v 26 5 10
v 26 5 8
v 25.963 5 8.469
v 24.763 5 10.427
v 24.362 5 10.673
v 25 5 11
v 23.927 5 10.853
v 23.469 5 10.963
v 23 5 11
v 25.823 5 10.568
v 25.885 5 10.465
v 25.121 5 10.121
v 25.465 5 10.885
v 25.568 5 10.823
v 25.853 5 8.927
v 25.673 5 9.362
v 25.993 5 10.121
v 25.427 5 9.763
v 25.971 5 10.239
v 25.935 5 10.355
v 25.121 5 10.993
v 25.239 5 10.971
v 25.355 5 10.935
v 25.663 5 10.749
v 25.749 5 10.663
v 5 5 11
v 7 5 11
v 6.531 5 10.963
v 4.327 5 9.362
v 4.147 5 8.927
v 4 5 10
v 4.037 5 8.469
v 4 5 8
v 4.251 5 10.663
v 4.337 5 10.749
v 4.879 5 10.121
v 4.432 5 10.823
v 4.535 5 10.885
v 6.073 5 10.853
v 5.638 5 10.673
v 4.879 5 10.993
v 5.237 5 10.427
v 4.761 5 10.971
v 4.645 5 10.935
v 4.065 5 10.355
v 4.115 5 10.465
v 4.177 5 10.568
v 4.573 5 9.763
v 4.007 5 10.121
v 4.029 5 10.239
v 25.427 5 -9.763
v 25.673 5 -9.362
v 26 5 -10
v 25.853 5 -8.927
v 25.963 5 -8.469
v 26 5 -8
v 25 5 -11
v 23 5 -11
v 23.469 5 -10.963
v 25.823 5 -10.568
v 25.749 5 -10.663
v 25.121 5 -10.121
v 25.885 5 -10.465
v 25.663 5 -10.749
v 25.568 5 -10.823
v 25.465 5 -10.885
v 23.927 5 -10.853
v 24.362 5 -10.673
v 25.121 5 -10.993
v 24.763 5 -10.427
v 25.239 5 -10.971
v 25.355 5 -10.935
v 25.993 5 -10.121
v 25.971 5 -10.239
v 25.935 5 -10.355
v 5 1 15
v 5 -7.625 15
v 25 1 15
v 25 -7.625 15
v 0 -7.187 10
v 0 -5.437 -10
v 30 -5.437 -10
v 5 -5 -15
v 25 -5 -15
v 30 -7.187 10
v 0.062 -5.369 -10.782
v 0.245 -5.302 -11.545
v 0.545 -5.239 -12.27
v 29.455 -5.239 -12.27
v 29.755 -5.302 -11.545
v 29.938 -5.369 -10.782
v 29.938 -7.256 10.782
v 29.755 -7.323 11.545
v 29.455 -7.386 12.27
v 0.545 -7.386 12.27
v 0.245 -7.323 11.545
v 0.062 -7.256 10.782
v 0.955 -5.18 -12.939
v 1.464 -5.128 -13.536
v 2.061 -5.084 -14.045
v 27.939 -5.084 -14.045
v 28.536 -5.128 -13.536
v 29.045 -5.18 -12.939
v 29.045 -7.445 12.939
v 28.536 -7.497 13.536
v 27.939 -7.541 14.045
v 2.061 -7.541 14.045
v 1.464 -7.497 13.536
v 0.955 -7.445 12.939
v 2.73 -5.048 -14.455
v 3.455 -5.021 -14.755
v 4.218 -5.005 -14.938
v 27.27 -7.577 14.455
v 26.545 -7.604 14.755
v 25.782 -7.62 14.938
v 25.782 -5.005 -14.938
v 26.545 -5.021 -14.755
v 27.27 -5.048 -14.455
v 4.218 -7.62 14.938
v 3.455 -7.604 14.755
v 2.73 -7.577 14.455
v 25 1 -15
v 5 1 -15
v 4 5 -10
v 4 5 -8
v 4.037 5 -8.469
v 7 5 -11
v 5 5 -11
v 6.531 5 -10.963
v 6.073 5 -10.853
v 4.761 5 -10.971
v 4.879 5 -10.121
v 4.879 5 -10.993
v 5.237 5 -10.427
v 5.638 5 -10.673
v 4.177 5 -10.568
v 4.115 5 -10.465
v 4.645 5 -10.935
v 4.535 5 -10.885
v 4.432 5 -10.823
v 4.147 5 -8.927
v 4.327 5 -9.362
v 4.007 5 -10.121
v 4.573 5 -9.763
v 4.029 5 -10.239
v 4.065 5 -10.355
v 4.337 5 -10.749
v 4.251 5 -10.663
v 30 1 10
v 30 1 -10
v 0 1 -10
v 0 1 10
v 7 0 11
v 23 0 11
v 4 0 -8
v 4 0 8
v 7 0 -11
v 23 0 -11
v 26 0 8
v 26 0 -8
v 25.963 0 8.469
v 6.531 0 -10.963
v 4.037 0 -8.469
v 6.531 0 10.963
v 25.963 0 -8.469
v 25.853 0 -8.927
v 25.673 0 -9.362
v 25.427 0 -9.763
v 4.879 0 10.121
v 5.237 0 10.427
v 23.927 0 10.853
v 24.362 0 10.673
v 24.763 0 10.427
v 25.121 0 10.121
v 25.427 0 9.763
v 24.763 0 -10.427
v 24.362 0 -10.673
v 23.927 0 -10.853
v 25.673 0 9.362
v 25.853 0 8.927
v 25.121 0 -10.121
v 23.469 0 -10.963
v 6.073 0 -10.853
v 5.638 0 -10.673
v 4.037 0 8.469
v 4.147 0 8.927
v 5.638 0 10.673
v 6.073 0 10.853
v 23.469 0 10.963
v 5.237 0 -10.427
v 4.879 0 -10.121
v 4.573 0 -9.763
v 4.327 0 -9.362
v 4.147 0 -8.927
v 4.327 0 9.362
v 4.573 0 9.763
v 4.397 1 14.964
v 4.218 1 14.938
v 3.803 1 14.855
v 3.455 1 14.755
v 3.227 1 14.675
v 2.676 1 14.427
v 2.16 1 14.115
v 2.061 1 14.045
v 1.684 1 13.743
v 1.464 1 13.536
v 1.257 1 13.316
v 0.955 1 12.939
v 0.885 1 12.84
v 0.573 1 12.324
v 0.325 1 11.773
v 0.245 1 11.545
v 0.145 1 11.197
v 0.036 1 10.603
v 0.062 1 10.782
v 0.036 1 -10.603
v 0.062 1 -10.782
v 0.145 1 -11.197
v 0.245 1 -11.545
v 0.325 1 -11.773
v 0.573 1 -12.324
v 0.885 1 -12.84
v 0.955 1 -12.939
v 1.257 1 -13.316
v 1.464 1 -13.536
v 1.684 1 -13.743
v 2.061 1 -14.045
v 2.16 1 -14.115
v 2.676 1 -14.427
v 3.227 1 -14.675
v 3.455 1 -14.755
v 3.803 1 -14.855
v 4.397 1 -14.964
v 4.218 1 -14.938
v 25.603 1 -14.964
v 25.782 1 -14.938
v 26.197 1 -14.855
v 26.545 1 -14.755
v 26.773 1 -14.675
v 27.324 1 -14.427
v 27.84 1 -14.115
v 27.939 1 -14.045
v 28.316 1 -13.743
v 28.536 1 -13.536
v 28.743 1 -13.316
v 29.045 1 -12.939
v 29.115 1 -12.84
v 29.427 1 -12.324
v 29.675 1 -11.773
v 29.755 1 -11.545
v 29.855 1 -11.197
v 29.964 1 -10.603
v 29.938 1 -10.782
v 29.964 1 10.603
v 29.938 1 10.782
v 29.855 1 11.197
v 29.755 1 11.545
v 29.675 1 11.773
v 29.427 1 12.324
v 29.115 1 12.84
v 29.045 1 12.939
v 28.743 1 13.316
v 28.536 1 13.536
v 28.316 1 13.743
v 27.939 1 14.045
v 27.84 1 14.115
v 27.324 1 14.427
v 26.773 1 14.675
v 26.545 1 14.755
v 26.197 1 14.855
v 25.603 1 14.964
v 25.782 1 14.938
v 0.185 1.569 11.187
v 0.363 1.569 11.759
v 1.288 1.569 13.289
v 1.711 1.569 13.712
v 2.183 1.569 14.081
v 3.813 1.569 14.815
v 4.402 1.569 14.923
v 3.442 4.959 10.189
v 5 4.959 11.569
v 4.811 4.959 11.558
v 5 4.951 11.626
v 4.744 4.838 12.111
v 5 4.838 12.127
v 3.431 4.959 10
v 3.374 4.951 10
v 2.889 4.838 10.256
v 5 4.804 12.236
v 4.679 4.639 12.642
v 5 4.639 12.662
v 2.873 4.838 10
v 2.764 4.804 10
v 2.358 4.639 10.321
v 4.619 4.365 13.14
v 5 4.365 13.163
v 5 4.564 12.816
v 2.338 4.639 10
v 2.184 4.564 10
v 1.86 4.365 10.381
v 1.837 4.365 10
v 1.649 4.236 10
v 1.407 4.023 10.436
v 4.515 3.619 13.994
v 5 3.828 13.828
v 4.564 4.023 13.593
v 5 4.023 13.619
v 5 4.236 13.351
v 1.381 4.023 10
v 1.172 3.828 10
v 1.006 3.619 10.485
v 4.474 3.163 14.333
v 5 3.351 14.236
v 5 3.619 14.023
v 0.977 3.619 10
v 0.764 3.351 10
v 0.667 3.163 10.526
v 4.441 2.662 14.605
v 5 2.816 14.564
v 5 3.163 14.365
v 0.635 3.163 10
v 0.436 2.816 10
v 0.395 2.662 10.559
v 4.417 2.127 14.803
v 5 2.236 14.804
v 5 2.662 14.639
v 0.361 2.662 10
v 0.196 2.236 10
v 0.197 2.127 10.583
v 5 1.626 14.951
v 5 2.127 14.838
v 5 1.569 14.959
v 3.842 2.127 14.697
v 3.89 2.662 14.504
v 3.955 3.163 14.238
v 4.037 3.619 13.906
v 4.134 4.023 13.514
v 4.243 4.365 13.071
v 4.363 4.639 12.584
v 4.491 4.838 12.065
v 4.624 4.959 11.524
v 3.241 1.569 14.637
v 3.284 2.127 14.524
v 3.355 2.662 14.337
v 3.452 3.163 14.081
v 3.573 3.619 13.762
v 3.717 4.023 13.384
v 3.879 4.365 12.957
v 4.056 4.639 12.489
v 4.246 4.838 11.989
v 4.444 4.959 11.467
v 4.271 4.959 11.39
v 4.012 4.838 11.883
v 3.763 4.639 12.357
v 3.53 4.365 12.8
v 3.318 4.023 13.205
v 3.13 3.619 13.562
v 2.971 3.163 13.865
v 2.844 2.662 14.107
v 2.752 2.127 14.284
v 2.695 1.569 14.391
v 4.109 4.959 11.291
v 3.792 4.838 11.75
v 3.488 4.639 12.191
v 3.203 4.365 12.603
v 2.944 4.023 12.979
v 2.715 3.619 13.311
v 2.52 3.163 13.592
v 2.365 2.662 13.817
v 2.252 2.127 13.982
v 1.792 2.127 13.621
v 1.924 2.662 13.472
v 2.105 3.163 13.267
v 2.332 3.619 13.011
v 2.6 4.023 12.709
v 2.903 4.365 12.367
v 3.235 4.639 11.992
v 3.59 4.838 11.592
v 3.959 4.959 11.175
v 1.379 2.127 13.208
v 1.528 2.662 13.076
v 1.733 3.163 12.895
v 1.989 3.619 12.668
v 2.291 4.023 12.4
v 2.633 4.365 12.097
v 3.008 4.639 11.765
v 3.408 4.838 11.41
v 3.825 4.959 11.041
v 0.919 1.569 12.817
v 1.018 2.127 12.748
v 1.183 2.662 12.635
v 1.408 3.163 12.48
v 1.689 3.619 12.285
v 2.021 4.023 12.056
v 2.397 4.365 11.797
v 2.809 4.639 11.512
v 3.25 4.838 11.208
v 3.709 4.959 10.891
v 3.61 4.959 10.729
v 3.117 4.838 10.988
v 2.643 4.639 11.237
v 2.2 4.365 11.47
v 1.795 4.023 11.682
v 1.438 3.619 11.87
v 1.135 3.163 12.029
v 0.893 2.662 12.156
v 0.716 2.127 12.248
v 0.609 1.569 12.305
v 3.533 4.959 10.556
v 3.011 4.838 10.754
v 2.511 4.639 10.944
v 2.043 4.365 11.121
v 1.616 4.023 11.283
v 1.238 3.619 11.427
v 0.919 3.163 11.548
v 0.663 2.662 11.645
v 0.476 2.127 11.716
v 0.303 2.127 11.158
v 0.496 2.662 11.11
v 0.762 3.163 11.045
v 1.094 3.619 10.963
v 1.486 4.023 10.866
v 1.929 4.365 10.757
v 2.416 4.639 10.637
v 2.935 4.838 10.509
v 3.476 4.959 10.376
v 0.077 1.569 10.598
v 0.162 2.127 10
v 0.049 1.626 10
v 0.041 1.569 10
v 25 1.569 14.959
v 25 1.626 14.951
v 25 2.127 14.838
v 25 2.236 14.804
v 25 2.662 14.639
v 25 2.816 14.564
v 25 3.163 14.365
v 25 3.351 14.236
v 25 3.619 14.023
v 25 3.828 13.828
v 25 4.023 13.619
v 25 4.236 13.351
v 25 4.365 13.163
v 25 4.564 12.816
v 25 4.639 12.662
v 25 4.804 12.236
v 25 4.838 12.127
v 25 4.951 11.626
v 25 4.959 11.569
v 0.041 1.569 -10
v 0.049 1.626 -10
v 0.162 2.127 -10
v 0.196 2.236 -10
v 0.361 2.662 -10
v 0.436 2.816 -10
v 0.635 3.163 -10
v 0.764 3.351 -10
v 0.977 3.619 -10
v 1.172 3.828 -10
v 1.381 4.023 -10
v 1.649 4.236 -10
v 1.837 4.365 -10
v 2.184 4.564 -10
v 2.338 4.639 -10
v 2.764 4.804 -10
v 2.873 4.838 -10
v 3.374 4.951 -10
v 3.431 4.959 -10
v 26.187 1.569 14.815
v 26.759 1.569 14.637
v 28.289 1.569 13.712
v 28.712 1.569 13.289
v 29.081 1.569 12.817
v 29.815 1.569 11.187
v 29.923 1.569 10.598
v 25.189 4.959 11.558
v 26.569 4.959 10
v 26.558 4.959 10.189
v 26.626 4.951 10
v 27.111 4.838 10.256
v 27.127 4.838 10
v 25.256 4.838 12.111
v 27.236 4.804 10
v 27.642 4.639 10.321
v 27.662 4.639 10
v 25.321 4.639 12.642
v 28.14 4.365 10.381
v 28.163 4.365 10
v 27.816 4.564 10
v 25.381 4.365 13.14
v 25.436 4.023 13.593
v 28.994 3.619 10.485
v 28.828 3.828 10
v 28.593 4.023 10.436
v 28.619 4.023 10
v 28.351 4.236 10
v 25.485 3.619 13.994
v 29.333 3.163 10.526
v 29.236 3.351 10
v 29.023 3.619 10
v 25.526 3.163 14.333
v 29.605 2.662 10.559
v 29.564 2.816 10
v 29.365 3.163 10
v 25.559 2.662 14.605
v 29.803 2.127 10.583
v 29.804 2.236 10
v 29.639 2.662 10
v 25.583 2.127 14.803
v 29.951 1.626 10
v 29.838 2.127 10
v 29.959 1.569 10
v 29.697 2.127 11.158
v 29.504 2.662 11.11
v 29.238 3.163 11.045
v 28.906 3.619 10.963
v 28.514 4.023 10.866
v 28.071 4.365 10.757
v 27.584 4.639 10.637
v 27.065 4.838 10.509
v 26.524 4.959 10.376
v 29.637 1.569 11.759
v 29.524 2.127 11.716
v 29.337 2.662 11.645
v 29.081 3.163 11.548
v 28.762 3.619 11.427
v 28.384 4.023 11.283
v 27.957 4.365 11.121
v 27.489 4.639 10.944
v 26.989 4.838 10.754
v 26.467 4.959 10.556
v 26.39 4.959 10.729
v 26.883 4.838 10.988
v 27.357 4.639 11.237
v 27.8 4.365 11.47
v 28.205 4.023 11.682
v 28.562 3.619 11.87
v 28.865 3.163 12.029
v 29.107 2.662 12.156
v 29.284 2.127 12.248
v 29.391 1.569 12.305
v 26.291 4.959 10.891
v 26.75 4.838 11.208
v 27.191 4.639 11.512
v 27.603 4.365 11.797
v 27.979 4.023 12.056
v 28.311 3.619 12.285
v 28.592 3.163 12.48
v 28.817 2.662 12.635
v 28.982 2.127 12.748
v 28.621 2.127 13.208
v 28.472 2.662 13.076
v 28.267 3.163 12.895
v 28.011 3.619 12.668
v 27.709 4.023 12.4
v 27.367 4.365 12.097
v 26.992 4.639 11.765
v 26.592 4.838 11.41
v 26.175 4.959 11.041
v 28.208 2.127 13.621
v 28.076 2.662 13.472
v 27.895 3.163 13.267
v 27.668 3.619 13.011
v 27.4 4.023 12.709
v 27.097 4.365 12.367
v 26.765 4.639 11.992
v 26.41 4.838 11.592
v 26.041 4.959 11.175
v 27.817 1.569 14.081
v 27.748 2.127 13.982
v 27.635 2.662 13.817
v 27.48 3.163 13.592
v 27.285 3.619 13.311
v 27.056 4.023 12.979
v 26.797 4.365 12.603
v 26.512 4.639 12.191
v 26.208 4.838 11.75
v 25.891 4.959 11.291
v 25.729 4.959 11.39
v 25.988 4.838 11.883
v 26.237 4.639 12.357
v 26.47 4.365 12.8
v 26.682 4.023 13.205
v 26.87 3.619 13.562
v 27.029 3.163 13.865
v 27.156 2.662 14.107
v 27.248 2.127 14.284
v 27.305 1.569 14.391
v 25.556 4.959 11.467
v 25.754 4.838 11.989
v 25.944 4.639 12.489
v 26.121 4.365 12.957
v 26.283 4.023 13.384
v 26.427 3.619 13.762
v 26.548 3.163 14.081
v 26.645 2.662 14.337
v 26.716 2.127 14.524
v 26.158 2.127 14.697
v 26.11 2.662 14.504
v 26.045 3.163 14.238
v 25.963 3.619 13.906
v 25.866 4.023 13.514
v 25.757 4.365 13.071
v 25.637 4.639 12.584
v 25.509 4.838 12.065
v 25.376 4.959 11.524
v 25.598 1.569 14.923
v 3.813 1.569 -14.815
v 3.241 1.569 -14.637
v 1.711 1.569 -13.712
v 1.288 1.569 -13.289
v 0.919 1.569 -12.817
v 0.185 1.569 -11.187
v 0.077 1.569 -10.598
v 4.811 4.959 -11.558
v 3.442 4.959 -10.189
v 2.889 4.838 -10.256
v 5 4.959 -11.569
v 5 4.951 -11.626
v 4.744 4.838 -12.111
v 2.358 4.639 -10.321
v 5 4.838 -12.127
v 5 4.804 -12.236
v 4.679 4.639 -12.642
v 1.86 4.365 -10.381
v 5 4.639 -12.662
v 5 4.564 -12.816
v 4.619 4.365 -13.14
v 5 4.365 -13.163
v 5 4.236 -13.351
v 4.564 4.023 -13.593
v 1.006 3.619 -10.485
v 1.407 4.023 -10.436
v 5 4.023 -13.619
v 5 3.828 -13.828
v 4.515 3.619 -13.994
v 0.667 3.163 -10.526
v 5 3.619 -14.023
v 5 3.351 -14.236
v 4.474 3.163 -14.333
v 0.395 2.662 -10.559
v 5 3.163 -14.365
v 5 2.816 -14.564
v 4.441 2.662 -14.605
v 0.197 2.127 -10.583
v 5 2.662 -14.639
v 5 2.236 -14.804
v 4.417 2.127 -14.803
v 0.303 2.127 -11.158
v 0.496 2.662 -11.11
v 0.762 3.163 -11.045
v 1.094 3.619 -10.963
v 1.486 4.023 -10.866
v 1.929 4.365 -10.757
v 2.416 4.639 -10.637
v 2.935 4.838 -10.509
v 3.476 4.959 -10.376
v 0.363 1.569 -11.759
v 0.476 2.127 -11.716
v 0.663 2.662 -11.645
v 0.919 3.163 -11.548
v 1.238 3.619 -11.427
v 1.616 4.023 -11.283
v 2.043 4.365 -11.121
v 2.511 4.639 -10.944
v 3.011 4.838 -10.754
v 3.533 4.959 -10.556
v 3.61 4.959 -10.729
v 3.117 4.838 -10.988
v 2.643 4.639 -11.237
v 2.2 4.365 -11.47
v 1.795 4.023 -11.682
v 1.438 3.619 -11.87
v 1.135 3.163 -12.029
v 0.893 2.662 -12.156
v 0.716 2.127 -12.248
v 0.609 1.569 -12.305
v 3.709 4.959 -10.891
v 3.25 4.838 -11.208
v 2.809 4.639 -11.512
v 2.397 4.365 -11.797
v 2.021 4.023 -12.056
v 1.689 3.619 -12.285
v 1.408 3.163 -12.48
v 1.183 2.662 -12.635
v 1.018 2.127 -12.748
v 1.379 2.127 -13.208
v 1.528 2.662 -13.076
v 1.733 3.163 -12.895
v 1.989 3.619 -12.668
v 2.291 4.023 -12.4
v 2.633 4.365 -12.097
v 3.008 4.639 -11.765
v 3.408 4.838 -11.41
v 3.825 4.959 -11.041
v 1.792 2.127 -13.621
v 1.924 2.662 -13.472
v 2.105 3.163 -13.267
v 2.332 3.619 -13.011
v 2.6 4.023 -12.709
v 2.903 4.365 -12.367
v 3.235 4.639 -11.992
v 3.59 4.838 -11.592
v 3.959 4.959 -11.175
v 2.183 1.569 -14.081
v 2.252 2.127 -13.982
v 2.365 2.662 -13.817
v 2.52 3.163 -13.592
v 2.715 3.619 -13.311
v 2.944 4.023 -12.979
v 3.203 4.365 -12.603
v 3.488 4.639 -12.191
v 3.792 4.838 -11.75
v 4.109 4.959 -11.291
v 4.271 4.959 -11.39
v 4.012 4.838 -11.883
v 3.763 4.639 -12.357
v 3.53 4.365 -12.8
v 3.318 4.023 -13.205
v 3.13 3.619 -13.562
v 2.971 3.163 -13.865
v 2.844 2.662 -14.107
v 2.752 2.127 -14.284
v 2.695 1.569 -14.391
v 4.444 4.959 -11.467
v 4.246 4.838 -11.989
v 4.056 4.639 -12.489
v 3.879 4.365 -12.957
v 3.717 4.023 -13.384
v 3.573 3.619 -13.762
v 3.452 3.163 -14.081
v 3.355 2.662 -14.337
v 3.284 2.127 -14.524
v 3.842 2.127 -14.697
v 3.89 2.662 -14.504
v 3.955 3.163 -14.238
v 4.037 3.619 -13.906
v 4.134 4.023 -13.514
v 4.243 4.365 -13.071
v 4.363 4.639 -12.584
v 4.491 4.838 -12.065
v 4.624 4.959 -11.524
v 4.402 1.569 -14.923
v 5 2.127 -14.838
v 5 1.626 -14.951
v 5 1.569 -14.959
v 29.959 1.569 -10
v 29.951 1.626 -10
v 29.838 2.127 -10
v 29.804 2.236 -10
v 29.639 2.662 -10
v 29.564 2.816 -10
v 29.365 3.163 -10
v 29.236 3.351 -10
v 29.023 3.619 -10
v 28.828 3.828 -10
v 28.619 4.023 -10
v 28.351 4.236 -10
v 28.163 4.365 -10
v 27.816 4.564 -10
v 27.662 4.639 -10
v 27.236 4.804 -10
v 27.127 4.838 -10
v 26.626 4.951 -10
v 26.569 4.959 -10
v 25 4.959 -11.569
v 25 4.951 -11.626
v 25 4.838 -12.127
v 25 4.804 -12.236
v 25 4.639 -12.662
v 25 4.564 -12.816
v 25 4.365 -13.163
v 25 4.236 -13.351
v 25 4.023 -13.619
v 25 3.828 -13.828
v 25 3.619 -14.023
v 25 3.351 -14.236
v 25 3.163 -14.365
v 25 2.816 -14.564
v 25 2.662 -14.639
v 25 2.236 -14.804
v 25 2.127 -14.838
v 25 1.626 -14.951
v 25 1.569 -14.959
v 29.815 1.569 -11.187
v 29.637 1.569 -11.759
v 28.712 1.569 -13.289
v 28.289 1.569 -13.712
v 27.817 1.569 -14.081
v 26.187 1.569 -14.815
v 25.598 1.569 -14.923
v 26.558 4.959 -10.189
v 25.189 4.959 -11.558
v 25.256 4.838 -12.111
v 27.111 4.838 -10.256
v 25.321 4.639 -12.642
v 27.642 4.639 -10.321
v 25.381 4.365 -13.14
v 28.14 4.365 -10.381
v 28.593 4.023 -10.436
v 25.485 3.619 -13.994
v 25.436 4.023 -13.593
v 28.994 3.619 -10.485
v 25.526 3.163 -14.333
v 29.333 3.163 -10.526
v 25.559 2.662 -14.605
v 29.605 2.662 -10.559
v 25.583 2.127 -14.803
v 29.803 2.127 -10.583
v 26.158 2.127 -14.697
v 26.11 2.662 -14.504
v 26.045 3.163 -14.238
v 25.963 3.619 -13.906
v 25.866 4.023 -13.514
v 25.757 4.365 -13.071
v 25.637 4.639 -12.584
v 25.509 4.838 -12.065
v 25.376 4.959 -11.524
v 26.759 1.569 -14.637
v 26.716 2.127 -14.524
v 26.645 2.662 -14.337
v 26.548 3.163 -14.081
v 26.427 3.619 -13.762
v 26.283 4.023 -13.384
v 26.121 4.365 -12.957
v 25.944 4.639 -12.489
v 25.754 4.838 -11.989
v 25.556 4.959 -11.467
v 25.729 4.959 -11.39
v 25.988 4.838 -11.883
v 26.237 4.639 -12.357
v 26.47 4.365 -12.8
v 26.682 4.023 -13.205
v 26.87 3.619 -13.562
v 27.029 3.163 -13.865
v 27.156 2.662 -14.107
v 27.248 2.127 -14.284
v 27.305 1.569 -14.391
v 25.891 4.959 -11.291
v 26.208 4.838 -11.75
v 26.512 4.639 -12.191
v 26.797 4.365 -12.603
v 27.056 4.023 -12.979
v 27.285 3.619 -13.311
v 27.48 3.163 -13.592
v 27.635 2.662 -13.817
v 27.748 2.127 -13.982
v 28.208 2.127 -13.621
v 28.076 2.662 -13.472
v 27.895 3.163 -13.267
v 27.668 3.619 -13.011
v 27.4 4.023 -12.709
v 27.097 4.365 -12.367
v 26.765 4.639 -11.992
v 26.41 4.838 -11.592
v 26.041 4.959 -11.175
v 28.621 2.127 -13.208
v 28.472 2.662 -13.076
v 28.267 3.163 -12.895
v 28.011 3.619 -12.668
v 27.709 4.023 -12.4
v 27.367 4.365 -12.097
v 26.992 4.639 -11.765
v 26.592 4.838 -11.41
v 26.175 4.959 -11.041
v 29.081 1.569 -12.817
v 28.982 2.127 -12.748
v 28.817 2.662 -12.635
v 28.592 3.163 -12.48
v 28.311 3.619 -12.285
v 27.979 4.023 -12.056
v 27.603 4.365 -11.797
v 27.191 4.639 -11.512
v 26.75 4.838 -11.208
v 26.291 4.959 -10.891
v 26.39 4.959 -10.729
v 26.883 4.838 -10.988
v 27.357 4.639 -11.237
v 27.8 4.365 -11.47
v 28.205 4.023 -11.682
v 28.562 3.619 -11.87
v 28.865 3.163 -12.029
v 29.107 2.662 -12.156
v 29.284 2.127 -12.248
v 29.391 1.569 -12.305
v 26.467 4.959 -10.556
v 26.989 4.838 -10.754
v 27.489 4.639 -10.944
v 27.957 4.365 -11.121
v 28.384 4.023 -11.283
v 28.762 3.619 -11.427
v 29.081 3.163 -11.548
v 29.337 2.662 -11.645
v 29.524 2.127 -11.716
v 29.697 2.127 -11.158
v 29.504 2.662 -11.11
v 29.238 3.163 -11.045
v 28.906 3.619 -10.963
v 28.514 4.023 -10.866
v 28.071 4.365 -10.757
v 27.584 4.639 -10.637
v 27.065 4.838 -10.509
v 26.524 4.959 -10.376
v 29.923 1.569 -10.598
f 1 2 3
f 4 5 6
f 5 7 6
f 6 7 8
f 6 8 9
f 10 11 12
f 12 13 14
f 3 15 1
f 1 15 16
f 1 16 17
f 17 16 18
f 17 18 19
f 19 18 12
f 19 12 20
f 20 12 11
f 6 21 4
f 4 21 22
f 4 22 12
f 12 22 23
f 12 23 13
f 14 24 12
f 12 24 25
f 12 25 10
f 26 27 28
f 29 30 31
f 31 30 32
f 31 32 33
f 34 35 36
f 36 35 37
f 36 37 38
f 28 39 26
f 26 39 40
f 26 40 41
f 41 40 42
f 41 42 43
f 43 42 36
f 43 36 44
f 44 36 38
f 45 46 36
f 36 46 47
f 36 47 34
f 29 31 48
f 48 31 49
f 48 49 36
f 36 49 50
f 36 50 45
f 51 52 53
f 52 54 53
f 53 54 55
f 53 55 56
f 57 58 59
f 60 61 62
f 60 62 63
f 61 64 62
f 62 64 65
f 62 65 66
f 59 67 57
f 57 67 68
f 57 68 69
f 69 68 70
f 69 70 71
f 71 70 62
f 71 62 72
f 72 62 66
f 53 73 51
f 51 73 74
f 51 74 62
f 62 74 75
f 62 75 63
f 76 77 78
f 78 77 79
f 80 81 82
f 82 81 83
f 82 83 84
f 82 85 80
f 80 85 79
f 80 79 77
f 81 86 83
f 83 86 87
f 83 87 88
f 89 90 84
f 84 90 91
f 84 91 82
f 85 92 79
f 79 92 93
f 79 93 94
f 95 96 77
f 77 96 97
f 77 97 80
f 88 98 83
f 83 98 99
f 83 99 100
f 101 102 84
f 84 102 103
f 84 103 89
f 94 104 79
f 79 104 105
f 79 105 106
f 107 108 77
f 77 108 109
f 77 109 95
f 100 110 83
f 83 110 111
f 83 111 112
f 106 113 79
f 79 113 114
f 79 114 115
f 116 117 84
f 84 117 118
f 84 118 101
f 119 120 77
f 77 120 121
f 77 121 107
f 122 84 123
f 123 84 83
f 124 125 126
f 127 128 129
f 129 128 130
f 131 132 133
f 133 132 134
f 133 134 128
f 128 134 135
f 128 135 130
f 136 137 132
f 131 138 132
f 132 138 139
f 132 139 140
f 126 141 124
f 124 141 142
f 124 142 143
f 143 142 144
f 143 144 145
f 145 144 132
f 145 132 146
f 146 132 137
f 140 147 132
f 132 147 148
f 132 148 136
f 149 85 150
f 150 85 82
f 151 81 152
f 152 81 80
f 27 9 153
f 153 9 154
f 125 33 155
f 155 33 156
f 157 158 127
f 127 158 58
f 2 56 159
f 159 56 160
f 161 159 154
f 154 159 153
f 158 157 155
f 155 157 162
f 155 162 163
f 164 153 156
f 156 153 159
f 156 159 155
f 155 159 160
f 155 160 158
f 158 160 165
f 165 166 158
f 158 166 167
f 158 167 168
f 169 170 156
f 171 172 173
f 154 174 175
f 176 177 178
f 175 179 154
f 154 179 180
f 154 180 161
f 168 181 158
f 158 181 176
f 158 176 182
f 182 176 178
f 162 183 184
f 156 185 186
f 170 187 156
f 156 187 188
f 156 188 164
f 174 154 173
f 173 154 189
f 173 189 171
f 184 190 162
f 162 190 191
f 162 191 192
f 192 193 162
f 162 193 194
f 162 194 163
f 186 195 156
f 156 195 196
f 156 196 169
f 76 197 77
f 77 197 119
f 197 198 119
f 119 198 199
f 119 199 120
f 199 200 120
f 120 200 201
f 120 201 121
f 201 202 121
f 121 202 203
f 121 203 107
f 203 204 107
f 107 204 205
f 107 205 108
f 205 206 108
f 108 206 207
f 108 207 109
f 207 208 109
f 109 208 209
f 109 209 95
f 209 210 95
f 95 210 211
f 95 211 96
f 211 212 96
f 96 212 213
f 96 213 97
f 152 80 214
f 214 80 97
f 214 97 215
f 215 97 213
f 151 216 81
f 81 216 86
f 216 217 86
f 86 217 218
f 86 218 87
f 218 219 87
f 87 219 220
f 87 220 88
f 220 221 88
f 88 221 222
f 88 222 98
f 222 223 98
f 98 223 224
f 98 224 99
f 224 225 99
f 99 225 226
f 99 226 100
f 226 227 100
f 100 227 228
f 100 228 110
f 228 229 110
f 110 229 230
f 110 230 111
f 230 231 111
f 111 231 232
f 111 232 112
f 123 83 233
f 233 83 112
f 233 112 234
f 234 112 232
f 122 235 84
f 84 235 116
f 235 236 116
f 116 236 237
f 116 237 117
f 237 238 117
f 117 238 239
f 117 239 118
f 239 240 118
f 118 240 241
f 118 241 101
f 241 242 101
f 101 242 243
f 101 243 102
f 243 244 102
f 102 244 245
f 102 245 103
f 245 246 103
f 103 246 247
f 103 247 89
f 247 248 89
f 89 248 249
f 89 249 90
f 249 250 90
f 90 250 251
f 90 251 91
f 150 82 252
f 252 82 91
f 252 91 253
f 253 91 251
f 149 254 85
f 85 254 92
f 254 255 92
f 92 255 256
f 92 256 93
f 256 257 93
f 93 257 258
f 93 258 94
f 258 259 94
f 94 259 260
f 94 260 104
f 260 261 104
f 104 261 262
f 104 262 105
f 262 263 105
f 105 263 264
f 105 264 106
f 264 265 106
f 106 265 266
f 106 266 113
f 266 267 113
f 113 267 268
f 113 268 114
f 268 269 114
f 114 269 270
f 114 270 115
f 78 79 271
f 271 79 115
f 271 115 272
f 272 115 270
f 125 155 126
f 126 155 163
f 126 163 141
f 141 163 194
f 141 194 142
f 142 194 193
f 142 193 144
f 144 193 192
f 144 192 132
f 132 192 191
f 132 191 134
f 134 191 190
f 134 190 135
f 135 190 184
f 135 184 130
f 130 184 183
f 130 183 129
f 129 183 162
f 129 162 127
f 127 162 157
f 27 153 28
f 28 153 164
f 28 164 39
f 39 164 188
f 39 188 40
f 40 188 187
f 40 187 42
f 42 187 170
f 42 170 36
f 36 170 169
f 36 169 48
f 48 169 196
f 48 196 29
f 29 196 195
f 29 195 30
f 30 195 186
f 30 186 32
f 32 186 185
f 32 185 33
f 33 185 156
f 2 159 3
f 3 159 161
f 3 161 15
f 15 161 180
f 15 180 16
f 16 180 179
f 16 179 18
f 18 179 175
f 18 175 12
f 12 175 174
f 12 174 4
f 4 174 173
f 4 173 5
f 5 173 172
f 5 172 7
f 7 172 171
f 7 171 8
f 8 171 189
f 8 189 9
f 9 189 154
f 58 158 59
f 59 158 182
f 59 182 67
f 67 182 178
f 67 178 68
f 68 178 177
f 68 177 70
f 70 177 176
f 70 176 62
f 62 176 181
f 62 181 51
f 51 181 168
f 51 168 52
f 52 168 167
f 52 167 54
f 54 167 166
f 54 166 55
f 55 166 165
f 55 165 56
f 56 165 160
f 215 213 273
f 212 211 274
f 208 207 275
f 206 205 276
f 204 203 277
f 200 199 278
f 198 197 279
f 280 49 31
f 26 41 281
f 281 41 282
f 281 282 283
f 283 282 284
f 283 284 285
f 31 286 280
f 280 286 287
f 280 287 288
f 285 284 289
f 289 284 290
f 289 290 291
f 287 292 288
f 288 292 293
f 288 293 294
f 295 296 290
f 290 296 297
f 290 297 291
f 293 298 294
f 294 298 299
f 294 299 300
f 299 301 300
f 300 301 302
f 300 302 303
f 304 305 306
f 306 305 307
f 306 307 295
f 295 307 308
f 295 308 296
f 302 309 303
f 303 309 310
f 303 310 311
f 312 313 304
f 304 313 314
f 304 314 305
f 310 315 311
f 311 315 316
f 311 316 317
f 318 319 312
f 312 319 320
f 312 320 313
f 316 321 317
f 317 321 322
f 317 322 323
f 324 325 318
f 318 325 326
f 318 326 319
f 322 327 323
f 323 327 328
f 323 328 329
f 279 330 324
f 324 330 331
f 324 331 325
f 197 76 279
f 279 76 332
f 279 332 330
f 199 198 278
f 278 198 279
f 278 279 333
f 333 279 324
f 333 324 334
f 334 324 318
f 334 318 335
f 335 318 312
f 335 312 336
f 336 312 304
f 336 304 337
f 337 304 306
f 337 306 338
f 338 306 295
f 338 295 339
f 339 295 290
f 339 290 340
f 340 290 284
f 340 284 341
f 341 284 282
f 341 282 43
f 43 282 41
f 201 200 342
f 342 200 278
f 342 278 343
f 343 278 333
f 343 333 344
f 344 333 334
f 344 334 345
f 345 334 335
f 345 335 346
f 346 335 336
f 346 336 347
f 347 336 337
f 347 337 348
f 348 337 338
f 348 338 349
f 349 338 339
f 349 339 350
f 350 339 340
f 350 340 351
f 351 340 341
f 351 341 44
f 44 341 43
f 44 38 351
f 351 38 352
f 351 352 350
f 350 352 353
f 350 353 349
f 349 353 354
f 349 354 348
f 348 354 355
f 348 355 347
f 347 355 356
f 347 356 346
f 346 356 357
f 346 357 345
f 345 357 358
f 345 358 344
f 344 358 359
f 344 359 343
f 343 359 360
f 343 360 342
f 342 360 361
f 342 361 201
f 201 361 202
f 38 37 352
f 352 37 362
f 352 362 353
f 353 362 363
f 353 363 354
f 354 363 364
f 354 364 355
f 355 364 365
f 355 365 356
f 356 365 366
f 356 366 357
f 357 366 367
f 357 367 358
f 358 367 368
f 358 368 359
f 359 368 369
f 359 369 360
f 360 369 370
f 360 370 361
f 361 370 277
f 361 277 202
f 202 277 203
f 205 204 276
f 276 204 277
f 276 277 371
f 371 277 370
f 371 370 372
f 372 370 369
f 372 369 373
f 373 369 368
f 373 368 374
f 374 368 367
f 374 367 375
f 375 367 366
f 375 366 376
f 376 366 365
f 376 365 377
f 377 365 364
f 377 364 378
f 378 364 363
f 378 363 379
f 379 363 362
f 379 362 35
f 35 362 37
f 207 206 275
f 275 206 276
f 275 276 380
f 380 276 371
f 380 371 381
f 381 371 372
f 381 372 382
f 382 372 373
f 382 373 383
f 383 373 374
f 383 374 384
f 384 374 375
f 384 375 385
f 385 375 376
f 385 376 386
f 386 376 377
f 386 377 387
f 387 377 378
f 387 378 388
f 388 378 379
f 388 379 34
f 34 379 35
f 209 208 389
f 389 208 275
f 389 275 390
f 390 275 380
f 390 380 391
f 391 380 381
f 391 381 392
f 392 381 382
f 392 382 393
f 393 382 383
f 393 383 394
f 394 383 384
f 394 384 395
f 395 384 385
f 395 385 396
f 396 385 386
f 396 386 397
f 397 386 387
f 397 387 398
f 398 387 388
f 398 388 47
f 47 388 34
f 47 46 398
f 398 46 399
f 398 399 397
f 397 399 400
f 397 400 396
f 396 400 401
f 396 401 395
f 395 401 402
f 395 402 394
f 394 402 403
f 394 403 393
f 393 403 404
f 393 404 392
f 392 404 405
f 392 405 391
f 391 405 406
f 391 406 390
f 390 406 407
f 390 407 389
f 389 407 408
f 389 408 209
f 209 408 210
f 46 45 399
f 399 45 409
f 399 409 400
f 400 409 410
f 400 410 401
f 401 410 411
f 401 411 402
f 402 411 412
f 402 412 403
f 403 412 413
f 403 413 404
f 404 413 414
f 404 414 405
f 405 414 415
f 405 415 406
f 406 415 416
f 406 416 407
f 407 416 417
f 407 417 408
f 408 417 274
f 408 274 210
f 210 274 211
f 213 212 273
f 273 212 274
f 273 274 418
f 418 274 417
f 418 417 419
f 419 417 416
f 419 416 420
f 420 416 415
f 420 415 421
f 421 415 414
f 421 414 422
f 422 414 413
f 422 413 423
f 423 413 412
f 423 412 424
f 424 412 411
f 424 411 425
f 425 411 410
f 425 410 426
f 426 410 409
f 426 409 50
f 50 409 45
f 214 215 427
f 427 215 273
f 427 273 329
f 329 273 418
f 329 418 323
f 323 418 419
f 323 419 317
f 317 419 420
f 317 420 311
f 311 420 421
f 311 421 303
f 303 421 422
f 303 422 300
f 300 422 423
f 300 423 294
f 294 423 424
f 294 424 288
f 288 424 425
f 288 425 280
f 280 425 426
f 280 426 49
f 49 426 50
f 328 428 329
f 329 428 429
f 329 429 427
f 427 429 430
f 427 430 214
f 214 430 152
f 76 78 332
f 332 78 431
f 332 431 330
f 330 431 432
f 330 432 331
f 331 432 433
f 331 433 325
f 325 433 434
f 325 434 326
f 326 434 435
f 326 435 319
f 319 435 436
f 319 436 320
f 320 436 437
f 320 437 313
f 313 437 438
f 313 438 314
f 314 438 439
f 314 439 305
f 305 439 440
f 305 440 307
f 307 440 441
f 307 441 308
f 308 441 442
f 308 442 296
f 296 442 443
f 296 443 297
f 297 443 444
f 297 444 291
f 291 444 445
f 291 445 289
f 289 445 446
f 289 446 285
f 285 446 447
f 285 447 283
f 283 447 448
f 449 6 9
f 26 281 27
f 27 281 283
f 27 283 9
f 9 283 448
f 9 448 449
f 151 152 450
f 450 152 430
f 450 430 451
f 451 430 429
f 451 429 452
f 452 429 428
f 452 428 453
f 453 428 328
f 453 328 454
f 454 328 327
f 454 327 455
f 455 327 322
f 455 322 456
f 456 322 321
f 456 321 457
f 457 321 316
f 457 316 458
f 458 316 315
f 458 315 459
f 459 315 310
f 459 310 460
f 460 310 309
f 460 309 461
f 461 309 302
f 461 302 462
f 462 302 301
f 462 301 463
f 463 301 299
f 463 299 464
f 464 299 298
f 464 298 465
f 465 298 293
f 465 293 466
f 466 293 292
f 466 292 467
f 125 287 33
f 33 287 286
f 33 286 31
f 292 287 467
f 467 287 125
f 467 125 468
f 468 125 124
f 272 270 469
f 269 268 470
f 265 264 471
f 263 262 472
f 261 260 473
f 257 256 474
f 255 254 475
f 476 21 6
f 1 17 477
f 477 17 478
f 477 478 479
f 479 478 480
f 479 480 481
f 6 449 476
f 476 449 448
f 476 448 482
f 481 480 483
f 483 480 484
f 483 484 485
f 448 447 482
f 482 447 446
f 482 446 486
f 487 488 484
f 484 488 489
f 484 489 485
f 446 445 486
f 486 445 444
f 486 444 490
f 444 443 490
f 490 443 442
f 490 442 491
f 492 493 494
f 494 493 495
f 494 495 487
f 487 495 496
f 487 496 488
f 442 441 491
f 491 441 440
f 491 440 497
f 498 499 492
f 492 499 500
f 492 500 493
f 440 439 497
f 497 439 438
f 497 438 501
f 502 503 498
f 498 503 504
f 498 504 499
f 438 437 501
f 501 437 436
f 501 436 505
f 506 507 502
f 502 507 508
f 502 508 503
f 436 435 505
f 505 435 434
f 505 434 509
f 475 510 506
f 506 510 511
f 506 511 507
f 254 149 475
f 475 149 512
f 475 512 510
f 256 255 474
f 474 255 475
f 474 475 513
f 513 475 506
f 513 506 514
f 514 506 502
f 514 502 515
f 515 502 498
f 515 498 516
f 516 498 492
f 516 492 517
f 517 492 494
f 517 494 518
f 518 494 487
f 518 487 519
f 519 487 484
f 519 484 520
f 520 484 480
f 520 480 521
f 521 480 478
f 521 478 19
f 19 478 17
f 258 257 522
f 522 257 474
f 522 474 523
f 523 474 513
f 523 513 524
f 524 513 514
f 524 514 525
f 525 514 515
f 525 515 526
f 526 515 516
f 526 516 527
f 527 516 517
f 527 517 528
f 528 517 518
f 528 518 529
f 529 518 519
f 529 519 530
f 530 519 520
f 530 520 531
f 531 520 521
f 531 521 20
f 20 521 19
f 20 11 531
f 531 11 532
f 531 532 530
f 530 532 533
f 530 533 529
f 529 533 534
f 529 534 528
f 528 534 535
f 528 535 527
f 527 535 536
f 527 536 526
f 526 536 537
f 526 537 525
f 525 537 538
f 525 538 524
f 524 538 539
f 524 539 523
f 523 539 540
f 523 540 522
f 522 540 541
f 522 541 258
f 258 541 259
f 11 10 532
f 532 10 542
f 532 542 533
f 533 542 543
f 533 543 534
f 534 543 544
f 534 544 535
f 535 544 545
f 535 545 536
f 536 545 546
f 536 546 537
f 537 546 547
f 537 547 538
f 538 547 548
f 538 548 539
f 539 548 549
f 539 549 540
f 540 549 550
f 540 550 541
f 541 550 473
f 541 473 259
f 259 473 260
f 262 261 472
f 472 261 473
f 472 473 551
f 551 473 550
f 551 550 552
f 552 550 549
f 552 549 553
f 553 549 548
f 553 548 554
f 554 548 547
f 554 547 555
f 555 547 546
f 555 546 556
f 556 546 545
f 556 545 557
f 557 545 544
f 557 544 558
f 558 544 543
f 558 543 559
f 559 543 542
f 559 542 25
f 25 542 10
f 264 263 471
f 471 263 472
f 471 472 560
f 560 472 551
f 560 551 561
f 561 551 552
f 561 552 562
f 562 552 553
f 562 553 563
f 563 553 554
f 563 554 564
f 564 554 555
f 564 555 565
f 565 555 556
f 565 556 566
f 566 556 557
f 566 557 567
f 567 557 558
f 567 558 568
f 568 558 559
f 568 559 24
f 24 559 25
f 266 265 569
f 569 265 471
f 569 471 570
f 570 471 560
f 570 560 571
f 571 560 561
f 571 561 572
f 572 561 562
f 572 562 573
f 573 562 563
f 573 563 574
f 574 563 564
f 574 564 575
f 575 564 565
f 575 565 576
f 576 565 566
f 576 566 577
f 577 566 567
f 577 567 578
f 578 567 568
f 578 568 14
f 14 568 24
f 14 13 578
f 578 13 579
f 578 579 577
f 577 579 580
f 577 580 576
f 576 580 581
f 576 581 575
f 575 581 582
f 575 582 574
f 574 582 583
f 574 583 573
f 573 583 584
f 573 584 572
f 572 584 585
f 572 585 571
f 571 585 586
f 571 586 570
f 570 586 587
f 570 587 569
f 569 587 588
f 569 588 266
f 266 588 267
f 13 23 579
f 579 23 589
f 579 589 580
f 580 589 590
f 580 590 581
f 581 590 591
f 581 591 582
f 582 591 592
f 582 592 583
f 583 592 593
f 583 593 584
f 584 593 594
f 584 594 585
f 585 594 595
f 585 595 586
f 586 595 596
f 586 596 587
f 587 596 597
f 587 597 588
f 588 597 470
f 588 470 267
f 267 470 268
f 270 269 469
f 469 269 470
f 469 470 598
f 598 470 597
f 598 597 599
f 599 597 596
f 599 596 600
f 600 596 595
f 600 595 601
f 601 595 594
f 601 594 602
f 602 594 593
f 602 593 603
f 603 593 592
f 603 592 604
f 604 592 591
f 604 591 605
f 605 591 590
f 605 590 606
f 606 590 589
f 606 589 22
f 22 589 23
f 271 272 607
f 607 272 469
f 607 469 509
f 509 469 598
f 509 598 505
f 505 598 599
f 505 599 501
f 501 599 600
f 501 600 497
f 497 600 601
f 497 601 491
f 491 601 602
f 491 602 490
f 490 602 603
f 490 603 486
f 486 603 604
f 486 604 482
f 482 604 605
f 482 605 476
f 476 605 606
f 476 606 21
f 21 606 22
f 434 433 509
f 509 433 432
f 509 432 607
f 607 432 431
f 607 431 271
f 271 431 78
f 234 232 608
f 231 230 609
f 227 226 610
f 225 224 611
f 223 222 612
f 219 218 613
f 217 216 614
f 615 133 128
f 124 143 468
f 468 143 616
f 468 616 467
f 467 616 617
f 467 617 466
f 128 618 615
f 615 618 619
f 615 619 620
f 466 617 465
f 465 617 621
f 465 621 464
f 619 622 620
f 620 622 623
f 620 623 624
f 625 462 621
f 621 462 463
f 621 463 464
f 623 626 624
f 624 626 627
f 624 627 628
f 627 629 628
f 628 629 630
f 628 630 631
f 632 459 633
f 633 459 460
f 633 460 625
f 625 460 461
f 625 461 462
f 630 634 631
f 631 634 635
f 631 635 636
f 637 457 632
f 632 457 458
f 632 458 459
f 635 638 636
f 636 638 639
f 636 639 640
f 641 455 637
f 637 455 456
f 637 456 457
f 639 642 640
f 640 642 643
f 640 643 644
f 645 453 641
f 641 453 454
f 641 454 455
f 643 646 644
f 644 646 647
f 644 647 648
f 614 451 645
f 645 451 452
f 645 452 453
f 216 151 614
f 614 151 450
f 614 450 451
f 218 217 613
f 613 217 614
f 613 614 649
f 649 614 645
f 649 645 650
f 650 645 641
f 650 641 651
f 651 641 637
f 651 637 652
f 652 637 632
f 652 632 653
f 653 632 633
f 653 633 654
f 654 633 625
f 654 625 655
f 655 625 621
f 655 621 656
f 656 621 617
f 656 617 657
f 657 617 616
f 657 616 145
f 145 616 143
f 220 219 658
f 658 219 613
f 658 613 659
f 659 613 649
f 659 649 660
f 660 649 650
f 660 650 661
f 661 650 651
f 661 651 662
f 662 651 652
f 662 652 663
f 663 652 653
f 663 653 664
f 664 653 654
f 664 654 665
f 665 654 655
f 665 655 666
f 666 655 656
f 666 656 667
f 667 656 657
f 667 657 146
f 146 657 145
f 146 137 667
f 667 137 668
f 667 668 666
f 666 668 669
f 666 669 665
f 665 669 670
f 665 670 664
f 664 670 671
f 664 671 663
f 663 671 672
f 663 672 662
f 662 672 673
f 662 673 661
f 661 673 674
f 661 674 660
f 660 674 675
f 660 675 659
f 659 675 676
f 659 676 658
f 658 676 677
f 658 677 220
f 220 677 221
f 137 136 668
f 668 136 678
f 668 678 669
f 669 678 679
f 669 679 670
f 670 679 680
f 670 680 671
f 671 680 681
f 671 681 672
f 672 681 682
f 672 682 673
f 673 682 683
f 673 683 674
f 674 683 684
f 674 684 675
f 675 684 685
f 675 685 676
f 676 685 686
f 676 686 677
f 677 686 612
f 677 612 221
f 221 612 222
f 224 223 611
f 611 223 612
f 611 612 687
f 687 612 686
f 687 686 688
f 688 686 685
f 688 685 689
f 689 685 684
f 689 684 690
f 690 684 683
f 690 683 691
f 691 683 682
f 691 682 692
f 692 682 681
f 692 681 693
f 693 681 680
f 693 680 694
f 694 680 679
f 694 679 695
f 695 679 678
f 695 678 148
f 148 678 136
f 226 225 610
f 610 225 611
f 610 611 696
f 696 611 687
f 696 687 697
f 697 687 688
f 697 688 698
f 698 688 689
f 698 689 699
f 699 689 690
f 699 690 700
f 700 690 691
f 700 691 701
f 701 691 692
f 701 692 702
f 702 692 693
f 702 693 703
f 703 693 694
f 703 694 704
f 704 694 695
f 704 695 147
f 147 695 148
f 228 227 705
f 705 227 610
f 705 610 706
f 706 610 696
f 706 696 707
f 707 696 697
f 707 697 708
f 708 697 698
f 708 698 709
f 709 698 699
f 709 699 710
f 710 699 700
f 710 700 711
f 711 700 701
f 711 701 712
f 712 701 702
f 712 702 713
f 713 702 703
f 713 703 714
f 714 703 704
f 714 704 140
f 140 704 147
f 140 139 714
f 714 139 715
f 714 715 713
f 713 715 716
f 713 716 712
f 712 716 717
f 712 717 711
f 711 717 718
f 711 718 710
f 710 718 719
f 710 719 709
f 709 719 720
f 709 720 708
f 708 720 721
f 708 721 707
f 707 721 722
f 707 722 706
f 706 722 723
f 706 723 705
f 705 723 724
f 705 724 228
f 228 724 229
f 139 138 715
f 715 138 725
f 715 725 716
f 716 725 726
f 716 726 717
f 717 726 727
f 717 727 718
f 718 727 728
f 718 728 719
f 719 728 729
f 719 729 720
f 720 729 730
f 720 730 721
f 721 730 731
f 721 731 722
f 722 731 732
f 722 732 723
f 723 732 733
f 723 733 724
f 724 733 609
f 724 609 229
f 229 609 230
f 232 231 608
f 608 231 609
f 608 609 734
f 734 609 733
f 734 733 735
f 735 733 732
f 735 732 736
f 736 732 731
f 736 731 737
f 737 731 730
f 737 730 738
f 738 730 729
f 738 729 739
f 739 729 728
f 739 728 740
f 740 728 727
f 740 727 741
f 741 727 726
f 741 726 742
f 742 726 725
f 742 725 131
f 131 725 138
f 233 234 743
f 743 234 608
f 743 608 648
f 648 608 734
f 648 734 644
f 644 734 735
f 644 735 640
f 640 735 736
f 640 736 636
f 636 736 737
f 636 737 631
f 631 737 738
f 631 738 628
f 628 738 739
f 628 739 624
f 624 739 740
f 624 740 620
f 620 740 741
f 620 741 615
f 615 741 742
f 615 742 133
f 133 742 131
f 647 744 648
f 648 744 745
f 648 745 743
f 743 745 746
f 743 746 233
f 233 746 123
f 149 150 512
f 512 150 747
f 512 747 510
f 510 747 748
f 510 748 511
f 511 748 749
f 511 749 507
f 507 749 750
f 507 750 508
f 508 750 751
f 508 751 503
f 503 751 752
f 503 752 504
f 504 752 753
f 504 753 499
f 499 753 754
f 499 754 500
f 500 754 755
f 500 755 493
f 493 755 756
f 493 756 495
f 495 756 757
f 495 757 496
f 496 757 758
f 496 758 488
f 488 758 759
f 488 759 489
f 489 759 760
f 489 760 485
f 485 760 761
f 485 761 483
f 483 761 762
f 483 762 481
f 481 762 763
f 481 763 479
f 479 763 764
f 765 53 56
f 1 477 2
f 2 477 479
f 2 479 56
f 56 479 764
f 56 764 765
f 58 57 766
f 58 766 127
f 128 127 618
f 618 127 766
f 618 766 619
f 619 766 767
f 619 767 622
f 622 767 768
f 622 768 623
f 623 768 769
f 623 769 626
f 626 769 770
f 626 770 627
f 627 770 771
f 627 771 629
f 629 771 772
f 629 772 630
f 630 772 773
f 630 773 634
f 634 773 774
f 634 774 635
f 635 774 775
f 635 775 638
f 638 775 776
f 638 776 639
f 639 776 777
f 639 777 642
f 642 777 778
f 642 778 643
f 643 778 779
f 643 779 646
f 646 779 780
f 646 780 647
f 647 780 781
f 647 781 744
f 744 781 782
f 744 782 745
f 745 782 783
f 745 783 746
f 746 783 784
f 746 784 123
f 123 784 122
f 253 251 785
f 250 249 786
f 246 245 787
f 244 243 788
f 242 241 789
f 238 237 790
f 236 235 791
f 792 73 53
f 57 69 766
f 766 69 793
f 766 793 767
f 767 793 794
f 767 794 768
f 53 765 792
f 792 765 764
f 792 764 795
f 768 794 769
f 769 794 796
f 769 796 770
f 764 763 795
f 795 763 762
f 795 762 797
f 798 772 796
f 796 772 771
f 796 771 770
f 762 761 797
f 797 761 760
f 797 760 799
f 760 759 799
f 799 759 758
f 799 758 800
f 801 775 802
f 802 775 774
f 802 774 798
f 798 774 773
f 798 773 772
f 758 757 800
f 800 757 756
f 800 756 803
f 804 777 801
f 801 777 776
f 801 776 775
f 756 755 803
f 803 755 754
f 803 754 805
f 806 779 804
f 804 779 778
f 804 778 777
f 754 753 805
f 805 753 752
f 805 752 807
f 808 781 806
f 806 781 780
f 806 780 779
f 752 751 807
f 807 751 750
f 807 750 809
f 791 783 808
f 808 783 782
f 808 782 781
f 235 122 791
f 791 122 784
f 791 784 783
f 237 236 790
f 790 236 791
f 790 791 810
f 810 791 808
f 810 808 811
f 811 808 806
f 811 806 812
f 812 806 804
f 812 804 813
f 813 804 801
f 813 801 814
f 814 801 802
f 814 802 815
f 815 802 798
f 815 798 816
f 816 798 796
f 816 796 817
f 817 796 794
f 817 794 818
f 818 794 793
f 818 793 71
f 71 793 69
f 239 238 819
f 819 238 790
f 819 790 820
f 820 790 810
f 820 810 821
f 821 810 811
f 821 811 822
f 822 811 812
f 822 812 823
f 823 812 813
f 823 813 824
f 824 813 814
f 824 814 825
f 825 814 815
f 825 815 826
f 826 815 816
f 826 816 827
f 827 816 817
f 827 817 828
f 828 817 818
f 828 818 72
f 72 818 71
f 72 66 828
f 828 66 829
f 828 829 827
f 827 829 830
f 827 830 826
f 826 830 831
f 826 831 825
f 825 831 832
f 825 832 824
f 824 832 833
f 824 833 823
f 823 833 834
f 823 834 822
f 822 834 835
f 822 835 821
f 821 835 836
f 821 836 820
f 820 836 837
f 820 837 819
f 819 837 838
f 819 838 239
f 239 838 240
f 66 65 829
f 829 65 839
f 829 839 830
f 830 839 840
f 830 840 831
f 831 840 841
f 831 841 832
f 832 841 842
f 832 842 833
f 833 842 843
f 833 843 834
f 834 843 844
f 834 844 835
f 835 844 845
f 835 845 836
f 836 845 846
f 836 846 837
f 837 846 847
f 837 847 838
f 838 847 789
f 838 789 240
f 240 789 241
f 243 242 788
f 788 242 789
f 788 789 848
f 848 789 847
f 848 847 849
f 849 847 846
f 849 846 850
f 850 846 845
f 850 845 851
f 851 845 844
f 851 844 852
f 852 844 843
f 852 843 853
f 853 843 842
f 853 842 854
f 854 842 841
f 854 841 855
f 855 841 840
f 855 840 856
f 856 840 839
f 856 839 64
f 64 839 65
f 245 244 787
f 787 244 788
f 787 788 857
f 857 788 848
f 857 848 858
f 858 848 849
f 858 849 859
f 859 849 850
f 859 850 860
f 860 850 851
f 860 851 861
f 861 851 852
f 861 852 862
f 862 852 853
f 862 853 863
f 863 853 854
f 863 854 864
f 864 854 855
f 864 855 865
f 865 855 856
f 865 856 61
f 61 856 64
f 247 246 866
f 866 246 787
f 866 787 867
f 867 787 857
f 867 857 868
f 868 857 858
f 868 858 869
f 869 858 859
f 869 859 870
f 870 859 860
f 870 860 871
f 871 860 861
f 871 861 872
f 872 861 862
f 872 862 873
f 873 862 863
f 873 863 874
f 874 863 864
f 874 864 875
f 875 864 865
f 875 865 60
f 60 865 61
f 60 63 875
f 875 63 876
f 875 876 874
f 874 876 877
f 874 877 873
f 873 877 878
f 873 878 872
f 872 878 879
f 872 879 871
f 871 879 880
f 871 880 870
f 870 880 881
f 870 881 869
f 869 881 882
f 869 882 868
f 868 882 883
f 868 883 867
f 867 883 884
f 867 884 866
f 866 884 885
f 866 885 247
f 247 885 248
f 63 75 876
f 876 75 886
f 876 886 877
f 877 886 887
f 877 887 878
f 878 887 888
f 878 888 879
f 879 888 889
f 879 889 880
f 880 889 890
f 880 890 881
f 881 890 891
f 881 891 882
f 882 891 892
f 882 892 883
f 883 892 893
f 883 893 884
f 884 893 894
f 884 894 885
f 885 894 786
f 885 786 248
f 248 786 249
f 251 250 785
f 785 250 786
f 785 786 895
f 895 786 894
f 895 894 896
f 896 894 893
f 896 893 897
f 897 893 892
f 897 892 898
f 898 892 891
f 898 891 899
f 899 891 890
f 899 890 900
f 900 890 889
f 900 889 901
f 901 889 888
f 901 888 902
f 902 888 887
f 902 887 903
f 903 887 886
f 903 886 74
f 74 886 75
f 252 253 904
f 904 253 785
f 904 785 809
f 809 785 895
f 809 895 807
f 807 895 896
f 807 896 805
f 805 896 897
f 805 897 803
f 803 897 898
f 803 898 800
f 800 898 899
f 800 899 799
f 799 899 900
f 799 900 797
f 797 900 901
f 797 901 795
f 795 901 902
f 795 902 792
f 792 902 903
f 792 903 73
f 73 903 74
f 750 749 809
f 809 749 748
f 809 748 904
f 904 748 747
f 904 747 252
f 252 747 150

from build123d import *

# Parameters (mm, degrees)
SKETCH1_W           = 30
SKETCH1_H           = 10
BOSS_EXTRUDE1_DEPTH = 30
SKETCH2_W           = 22
SKETCH2_H           = 22
CUT_EXTRUDE1_DEPTH  = 5
FILLET1_R           = 5
FILLET2_R           = 3
FILLET3_R           = 4


with BuildPart() as part:
    # Sketch1 → Boss-Extrude1 (new body)
    with BuildSketch(Plane(origin=(0, 0, 0), x_dir=(0, 0, -1), z_dir=(1, 0, 0))):
        Polygon((-15, -5), (-15, -7.625), (15, -5), align=None)
        Rectangle(SKETCH1_W, SKETCH1_H)
    extrude(amount=BOSS_EXTRUDE1_DEPTH)

    # Sketch2 → Cut-Extrude1 (cut)
    with BuildSketch(Plane(origin=(0, 5, 0), x_dir=(1, 0, 0), z_dir=(0, 1, 0))):
        with Locations((15, 0)):
            Rectangle(SKETCH2_W, SKETCH2_H)
    extrude(amount=-CUT_EXTRUDE1_DEPTH, mode=Mode.SUBTRACT)

    # Fillet1
    fillet1_edges = [part.edges().sort_by_distance(p)[0] for p in [
        (30, 0, -15),
        (30, -1.3125, 15),
        (0, 0, -15),
        (0, -1.3125, 15),
    ]]
    fillet(fillet1_edges, radius=FILLET1_R)

    # Fillet2
    fillet2_edges = [part.edges().sort_by_distance(p)[0] for p in [
        (26, 2.5, 11),
        (4, 2.5, 11),
        (4, 2.5, -11),
        (26, 2.5, -11),
    ]]
    fillet(fillet2_edges, radius=FILLET2_R)

    # Fillet3
    fillet3_edges = [part.edges().sort_by_distance(p)[0] for p in [
        (15, 5, 15),
        (0, 5, 0),
        (30, 5, 0),
        (15, 5, -15),
        (28.535533906, 5, 13.535533906),
        (28.535533906, 5, -13.535533906),
        (1.464466094, 5, -13.535533906),
        (1.464466094, 5, 13.535533906),
    ]]
    fillet(fillet3_edges, radius=FILLET3_R - 0.0001)  # a hair under: the kernel refuses the full size


solid = part.part
